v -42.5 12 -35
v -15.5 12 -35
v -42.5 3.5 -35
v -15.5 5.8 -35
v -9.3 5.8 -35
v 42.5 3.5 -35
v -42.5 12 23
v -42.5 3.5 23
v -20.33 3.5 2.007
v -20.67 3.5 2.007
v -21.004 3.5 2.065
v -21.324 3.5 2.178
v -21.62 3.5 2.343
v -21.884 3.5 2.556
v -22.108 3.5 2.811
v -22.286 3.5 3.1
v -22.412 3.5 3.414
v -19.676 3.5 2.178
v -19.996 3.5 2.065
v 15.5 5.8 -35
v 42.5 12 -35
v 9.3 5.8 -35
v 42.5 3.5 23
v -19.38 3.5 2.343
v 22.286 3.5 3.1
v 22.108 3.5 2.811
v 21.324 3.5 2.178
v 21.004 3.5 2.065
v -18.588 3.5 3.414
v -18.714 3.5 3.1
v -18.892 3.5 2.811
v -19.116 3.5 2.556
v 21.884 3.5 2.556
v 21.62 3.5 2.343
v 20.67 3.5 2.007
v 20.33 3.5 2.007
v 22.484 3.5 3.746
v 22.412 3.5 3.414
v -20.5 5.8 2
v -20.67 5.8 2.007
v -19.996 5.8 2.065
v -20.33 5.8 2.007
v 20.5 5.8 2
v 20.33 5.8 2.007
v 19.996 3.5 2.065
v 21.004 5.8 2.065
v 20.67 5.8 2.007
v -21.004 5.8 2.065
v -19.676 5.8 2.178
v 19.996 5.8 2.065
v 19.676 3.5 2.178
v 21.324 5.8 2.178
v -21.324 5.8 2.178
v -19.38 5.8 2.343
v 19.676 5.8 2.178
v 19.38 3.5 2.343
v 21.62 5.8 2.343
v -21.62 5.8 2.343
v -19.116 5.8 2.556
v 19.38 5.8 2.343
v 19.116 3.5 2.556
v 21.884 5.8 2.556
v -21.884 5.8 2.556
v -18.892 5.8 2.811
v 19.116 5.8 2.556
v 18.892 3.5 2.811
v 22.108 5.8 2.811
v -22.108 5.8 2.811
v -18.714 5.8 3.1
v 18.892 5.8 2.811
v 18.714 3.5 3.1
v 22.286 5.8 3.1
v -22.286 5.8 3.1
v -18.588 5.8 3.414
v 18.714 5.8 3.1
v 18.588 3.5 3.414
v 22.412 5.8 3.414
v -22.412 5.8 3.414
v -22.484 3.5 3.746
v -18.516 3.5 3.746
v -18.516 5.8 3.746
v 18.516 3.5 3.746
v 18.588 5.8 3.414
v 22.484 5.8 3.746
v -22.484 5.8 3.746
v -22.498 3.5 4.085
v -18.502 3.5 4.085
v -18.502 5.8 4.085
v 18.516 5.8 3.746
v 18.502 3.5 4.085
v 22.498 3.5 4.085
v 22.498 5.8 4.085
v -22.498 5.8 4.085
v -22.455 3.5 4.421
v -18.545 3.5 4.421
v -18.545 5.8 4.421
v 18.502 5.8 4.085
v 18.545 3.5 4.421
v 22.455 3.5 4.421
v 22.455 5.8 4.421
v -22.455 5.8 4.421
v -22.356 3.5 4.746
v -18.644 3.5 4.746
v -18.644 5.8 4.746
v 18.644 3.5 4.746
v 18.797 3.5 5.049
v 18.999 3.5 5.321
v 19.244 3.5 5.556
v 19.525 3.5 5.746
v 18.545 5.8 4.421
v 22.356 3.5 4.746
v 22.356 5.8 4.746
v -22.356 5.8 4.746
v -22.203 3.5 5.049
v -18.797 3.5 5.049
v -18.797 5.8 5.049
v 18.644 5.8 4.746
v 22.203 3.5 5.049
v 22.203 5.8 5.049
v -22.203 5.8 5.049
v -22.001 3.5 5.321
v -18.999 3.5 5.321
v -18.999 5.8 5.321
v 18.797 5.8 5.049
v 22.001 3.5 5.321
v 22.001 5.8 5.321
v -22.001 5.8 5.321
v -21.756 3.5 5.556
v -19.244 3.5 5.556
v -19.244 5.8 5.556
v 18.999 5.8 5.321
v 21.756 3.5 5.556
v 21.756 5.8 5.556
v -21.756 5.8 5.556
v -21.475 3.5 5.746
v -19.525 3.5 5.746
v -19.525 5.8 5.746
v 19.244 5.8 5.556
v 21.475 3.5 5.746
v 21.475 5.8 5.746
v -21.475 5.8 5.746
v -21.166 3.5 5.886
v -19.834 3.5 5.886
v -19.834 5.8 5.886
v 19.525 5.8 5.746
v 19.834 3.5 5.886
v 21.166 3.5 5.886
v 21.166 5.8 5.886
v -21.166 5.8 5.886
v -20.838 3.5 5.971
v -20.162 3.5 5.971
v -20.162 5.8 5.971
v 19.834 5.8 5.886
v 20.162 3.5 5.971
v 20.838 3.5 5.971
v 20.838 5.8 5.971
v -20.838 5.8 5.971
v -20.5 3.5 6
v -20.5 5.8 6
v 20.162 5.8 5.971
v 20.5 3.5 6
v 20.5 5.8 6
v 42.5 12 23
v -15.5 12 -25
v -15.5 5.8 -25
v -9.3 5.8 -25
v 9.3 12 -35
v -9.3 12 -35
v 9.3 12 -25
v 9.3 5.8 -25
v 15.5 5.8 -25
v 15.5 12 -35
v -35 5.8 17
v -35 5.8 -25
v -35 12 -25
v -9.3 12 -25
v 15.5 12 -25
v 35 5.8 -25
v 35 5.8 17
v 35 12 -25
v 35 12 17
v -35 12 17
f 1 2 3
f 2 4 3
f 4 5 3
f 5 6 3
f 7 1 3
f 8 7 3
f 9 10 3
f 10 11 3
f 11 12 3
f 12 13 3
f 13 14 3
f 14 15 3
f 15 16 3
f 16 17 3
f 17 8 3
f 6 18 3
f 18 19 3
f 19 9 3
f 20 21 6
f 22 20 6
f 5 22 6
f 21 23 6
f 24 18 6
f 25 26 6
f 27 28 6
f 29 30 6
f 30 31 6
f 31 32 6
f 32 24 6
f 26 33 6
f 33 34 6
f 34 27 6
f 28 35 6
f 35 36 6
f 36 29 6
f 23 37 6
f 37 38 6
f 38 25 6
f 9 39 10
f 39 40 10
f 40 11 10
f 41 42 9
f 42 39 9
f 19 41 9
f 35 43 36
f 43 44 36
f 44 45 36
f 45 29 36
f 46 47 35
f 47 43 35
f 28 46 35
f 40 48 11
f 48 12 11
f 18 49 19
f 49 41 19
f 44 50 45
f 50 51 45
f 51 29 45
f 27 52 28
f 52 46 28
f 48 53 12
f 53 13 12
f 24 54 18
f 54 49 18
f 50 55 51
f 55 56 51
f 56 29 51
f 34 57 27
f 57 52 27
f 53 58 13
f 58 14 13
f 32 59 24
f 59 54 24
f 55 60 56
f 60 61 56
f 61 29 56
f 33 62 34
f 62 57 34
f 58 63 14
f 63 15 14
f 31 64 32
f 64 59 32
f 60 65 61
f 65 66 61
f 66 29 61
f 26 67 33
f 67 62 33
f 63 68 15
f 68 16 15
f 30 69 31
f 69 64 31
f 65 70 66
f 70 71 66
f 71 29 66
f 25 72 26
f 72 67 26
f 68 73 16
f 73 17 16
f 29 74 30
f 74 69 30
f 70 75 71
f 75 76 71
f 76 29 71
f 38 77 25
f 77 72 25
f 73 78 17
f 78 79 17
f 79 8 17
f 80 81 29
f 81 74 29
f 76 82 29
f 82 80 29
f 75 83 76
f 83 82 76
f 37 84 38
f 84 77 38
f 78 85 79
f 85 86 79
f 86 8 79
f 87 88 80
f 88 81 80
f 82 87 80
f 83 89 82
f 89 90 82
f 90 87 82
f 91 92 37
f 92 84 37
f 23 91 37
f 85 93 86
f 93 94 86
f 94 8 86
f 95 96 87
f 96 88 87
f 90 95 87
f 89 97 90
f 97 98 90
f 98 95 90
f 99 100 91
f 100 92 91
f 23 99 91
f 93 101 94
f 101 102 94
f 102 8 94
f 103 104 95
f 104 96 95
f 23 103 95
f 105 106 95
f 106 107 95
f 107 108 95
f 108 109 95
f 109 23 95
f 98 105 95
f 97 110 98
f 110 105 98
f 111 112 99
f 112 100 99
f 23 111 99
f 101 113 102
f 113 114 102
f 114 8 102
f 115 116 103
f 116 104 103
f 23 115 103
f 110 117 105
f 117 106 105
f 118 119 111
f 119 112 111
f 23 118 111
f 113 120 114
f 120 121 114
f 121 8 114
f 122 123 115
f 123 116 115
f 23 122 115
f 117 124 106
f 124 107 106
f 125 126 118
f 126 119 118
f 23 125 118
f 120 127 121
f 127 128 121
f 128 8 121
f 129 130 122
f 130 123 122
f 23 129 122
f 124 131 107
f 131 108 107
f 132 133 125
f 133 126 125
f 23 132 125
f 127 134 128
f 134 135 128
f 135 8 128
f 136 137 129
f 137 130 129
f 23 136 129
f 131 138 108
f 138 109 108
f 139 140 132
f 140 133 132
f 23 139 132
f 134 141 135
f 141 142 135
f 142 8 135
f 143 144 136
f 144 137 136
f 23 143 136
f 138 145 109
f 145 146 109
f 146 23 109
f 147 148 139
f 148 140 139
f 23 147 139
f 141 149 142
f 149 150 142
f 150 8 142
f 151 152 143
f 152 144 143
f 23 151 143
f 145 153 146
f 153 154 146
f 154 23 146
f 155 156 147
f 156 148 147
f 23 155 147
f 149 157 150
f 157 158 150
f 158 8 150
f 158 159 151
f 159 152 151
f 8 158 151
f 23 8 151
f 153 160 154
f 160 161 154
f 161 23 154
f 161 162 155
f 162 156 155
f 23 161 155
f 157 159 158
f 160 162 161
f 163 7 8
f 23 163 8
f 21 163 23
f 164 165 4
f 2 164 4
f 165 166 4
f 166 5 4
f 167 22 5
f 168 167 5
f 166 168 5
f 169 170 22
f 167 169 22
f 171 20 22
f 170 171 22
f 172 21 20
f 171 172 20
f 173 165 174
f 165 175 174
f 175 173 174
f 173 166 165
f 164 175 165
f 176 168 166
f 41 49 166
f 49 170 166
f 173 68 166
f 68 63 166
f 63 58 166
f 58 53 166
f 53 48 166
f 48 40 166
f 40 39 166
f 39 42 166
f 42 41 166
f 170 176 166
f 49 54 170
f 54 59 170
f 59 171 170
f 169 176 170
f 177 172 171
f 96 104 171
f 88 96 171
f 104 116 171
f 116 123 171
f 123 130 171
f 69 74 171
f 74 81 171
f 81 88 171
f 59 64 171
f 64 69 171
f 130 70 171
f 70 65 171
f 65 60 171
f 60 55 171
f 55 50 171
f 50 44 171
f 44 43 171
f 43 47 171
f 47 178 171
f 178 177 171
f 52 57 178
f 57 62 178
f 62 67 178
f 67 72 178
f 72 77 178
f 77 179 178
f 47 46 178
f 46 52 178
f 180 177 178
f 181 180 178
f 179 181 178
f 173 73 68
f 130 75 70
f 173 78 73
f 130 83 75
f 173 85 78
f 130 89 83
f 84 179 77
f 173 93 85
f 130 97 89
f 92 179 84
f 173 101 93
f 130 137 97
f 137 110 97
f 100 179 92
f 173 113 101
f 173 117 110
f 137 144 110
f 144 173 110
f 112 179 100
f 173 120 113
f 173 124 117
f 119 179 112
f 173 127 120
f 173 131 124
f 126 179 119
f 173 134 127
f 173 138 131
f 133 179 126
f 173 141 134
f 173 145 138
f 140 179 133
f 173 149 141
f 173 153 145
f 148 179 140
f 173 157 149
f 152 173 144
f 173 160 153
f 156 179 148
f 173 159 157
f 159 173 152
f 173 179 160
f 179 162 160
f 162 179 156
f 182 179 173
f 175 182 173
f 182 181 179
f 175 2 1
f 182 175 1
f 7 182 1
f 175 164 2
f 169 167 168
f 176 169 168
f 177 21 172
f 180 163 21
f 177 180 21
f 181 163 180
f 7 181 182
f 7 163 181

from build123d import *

# Parameters (mm, degrees)
SKETCH1_W           = 91
SKETCH1_H           = 70
BOSS_EXTRUDE1_DEPTH = 12
SKETCH2_R           = 2
CUT_EXTRUDE1_DEPTH  = 59.645119149
SKETCH4_W           = 6.2
SKETCH4_H           = 6.2
CUT_EXTRUDE2_DEPTH  = 15
SKETCH5_W           = 70
SKETCH5_H           = 42
CUT_EXTRUDE3_DEPTH  = 6.2
SKETCH6_W           = 109.081458423
SKETCH6_H           = 97.427456455
SKETCH6_W_2         = 85
SKETCH6_H_2         = 75.166710869
CUT_EXTRUDE4_DEPTH  = 28
SKETCH7_W           = 85
SKETCH7_H           = 3.5
CUT_EXTRUDE5_DEPTH  = 82.081748871
FILLET3_R           = 10
SKETCH8_W           = 85
SKETCH8_H           = 10
CUT_EXTRUDE7_DEPTH  = 17


with BuildPart() as part:
    # Sketch1 → Boss-Extrude1 (new body)
    with BuildSketch(Plane(origin=(0, 0, 0), x_dir=(1, 0, 0), z_dir=(0, 1, 0))):
        Rectangle(SKETCH1_W, SKETCH1_H)
    extrude(amount=BOSS_EXTRUDE1_DEPTH)

    # Sketch2 → Cut-Extrude1 (cut, through all)
    with BuildSketch(Plane(origin=(0, 12, 0), x_dir=(1, 0, 0), z_dir=(0, 1, 0))):
        with Locations(Location((-20.5, -4, 0), (0, 0, 270))):
            Circle(SKETCH2_R)
        with Locations(Location((20.5, -4, 0), (0, 0, 270))):
            Circle(SKETCH2_R)
    extrude(amount=-CUT_EXTRUDE1_DEPTH, mode=Mode.SUBTRACT)

    # Sketch4 → Cut-Extrude2 (cut)
    with BuildSketch(Plane(origin=(0, 0, -35), x_dir=(-1, 0, 0), z_dir=(0, 0, -1))):
        with Locations((-12.4, 8.9)):
            Rectangle(SKETCH4_W, SKETCH4_H)
        with Locations((12.4, 8.9)):
            Rectangle(SKETCH4_W, SKETCH4_H)
    extrude(amount=-CUT_EXTRUDE2_DEPTH, mode=Mode.SUBTRACT)

    # Sketch5 → Cut-Extrude3 (cut)
    with BuildSketch(Plane(origin=(0, 12, 0), x_dir=(1, 0, 0), z_dir=(0, 1, 0))):
        with Locations((0, 4)):
            Rectangle(SKETCH5_W, SKETCH5_H)
    extrude(amount=-CUT_EXTRUDE3_DEPTH, mode=Mode.SUBTRACT)

    # Sketch6 → Cut-Extrude4 (cut)
    with BuildSketch(Plane(origin=(0, 12, 0), x_dir=(1, 0, 0), z_dir=(0, 1, 0))):
        with Locations((-1.57183243, 4.07575105)):
            Rectangle(SKETCH6_W, SKETCH6_H)
        with Locations((0, 4.583355434)):
            Rectangle(SKETCH6_W_2, SKETCH6_H_2, mode=Mode.SUBTRACT)
    extrude(amount=-CUT_EXTRUDE4_DEPTH, mode=Mode.SUBTRACT)

    # Sketch7 → Cut-Extrude5 (cut, through all)
    with BuildSketch(Plane(origin=(0, 0, -35), x_dir=(-1, 0, 0), z_dir=(0, 0, -1))):
        with Locations((0, 1.75)):
            Rectangle(SKETCH7_W, SKETCH7_H)
    extrude(amount=-CUT_EXTRUDE5_DEPTH, mode=Mode.SUBTRACT)

    # Fillet3
    # the kernel refuses this fillet: 10 mm, written as the material it takes off along each edge
    with BuildSketch(Plane(origin=(-67.217149917, 3.5, 33), x_dir=(0, 0, -1), z_dir=(1, 0, 0))) as fillet3_piece_1:
        with BuildLine():
            CenterArc((9.886859967, 10), FILLET3_R, 188.626926559, 81.373073441)
            Line((0, 8.5), (-0.197737199, 8.47))
            ThreePointArc((-0.197737199, 8.47), (-0.2, 4.25), (-0.2, 0))
            Line((-0.2, 0), (0, -0.2))
            Line((0, -0.2), (9.886859967, -0.2))
            Line((9.886859967, -0.2), (9.886859967, 0))
        make_face()
    extrude(amount=134.434299833, mode=Mode.SUBTRACT)

    # Sketch8 → Cut-Extrude7 (cut)
    with BuildSketch(Plane(origin=(0, 12, 0), x_dir=(1, 0, 0), z_dir=(0, 1, 0))):
        with Locations((0, -28)):
            Rectangle(SKETCH8_W, SKETCH8_H)
    extrude(amount=-CUT_EXTRUDE7_DEPTH, mode=Mode.SUBTRACT)


solid = part.part
